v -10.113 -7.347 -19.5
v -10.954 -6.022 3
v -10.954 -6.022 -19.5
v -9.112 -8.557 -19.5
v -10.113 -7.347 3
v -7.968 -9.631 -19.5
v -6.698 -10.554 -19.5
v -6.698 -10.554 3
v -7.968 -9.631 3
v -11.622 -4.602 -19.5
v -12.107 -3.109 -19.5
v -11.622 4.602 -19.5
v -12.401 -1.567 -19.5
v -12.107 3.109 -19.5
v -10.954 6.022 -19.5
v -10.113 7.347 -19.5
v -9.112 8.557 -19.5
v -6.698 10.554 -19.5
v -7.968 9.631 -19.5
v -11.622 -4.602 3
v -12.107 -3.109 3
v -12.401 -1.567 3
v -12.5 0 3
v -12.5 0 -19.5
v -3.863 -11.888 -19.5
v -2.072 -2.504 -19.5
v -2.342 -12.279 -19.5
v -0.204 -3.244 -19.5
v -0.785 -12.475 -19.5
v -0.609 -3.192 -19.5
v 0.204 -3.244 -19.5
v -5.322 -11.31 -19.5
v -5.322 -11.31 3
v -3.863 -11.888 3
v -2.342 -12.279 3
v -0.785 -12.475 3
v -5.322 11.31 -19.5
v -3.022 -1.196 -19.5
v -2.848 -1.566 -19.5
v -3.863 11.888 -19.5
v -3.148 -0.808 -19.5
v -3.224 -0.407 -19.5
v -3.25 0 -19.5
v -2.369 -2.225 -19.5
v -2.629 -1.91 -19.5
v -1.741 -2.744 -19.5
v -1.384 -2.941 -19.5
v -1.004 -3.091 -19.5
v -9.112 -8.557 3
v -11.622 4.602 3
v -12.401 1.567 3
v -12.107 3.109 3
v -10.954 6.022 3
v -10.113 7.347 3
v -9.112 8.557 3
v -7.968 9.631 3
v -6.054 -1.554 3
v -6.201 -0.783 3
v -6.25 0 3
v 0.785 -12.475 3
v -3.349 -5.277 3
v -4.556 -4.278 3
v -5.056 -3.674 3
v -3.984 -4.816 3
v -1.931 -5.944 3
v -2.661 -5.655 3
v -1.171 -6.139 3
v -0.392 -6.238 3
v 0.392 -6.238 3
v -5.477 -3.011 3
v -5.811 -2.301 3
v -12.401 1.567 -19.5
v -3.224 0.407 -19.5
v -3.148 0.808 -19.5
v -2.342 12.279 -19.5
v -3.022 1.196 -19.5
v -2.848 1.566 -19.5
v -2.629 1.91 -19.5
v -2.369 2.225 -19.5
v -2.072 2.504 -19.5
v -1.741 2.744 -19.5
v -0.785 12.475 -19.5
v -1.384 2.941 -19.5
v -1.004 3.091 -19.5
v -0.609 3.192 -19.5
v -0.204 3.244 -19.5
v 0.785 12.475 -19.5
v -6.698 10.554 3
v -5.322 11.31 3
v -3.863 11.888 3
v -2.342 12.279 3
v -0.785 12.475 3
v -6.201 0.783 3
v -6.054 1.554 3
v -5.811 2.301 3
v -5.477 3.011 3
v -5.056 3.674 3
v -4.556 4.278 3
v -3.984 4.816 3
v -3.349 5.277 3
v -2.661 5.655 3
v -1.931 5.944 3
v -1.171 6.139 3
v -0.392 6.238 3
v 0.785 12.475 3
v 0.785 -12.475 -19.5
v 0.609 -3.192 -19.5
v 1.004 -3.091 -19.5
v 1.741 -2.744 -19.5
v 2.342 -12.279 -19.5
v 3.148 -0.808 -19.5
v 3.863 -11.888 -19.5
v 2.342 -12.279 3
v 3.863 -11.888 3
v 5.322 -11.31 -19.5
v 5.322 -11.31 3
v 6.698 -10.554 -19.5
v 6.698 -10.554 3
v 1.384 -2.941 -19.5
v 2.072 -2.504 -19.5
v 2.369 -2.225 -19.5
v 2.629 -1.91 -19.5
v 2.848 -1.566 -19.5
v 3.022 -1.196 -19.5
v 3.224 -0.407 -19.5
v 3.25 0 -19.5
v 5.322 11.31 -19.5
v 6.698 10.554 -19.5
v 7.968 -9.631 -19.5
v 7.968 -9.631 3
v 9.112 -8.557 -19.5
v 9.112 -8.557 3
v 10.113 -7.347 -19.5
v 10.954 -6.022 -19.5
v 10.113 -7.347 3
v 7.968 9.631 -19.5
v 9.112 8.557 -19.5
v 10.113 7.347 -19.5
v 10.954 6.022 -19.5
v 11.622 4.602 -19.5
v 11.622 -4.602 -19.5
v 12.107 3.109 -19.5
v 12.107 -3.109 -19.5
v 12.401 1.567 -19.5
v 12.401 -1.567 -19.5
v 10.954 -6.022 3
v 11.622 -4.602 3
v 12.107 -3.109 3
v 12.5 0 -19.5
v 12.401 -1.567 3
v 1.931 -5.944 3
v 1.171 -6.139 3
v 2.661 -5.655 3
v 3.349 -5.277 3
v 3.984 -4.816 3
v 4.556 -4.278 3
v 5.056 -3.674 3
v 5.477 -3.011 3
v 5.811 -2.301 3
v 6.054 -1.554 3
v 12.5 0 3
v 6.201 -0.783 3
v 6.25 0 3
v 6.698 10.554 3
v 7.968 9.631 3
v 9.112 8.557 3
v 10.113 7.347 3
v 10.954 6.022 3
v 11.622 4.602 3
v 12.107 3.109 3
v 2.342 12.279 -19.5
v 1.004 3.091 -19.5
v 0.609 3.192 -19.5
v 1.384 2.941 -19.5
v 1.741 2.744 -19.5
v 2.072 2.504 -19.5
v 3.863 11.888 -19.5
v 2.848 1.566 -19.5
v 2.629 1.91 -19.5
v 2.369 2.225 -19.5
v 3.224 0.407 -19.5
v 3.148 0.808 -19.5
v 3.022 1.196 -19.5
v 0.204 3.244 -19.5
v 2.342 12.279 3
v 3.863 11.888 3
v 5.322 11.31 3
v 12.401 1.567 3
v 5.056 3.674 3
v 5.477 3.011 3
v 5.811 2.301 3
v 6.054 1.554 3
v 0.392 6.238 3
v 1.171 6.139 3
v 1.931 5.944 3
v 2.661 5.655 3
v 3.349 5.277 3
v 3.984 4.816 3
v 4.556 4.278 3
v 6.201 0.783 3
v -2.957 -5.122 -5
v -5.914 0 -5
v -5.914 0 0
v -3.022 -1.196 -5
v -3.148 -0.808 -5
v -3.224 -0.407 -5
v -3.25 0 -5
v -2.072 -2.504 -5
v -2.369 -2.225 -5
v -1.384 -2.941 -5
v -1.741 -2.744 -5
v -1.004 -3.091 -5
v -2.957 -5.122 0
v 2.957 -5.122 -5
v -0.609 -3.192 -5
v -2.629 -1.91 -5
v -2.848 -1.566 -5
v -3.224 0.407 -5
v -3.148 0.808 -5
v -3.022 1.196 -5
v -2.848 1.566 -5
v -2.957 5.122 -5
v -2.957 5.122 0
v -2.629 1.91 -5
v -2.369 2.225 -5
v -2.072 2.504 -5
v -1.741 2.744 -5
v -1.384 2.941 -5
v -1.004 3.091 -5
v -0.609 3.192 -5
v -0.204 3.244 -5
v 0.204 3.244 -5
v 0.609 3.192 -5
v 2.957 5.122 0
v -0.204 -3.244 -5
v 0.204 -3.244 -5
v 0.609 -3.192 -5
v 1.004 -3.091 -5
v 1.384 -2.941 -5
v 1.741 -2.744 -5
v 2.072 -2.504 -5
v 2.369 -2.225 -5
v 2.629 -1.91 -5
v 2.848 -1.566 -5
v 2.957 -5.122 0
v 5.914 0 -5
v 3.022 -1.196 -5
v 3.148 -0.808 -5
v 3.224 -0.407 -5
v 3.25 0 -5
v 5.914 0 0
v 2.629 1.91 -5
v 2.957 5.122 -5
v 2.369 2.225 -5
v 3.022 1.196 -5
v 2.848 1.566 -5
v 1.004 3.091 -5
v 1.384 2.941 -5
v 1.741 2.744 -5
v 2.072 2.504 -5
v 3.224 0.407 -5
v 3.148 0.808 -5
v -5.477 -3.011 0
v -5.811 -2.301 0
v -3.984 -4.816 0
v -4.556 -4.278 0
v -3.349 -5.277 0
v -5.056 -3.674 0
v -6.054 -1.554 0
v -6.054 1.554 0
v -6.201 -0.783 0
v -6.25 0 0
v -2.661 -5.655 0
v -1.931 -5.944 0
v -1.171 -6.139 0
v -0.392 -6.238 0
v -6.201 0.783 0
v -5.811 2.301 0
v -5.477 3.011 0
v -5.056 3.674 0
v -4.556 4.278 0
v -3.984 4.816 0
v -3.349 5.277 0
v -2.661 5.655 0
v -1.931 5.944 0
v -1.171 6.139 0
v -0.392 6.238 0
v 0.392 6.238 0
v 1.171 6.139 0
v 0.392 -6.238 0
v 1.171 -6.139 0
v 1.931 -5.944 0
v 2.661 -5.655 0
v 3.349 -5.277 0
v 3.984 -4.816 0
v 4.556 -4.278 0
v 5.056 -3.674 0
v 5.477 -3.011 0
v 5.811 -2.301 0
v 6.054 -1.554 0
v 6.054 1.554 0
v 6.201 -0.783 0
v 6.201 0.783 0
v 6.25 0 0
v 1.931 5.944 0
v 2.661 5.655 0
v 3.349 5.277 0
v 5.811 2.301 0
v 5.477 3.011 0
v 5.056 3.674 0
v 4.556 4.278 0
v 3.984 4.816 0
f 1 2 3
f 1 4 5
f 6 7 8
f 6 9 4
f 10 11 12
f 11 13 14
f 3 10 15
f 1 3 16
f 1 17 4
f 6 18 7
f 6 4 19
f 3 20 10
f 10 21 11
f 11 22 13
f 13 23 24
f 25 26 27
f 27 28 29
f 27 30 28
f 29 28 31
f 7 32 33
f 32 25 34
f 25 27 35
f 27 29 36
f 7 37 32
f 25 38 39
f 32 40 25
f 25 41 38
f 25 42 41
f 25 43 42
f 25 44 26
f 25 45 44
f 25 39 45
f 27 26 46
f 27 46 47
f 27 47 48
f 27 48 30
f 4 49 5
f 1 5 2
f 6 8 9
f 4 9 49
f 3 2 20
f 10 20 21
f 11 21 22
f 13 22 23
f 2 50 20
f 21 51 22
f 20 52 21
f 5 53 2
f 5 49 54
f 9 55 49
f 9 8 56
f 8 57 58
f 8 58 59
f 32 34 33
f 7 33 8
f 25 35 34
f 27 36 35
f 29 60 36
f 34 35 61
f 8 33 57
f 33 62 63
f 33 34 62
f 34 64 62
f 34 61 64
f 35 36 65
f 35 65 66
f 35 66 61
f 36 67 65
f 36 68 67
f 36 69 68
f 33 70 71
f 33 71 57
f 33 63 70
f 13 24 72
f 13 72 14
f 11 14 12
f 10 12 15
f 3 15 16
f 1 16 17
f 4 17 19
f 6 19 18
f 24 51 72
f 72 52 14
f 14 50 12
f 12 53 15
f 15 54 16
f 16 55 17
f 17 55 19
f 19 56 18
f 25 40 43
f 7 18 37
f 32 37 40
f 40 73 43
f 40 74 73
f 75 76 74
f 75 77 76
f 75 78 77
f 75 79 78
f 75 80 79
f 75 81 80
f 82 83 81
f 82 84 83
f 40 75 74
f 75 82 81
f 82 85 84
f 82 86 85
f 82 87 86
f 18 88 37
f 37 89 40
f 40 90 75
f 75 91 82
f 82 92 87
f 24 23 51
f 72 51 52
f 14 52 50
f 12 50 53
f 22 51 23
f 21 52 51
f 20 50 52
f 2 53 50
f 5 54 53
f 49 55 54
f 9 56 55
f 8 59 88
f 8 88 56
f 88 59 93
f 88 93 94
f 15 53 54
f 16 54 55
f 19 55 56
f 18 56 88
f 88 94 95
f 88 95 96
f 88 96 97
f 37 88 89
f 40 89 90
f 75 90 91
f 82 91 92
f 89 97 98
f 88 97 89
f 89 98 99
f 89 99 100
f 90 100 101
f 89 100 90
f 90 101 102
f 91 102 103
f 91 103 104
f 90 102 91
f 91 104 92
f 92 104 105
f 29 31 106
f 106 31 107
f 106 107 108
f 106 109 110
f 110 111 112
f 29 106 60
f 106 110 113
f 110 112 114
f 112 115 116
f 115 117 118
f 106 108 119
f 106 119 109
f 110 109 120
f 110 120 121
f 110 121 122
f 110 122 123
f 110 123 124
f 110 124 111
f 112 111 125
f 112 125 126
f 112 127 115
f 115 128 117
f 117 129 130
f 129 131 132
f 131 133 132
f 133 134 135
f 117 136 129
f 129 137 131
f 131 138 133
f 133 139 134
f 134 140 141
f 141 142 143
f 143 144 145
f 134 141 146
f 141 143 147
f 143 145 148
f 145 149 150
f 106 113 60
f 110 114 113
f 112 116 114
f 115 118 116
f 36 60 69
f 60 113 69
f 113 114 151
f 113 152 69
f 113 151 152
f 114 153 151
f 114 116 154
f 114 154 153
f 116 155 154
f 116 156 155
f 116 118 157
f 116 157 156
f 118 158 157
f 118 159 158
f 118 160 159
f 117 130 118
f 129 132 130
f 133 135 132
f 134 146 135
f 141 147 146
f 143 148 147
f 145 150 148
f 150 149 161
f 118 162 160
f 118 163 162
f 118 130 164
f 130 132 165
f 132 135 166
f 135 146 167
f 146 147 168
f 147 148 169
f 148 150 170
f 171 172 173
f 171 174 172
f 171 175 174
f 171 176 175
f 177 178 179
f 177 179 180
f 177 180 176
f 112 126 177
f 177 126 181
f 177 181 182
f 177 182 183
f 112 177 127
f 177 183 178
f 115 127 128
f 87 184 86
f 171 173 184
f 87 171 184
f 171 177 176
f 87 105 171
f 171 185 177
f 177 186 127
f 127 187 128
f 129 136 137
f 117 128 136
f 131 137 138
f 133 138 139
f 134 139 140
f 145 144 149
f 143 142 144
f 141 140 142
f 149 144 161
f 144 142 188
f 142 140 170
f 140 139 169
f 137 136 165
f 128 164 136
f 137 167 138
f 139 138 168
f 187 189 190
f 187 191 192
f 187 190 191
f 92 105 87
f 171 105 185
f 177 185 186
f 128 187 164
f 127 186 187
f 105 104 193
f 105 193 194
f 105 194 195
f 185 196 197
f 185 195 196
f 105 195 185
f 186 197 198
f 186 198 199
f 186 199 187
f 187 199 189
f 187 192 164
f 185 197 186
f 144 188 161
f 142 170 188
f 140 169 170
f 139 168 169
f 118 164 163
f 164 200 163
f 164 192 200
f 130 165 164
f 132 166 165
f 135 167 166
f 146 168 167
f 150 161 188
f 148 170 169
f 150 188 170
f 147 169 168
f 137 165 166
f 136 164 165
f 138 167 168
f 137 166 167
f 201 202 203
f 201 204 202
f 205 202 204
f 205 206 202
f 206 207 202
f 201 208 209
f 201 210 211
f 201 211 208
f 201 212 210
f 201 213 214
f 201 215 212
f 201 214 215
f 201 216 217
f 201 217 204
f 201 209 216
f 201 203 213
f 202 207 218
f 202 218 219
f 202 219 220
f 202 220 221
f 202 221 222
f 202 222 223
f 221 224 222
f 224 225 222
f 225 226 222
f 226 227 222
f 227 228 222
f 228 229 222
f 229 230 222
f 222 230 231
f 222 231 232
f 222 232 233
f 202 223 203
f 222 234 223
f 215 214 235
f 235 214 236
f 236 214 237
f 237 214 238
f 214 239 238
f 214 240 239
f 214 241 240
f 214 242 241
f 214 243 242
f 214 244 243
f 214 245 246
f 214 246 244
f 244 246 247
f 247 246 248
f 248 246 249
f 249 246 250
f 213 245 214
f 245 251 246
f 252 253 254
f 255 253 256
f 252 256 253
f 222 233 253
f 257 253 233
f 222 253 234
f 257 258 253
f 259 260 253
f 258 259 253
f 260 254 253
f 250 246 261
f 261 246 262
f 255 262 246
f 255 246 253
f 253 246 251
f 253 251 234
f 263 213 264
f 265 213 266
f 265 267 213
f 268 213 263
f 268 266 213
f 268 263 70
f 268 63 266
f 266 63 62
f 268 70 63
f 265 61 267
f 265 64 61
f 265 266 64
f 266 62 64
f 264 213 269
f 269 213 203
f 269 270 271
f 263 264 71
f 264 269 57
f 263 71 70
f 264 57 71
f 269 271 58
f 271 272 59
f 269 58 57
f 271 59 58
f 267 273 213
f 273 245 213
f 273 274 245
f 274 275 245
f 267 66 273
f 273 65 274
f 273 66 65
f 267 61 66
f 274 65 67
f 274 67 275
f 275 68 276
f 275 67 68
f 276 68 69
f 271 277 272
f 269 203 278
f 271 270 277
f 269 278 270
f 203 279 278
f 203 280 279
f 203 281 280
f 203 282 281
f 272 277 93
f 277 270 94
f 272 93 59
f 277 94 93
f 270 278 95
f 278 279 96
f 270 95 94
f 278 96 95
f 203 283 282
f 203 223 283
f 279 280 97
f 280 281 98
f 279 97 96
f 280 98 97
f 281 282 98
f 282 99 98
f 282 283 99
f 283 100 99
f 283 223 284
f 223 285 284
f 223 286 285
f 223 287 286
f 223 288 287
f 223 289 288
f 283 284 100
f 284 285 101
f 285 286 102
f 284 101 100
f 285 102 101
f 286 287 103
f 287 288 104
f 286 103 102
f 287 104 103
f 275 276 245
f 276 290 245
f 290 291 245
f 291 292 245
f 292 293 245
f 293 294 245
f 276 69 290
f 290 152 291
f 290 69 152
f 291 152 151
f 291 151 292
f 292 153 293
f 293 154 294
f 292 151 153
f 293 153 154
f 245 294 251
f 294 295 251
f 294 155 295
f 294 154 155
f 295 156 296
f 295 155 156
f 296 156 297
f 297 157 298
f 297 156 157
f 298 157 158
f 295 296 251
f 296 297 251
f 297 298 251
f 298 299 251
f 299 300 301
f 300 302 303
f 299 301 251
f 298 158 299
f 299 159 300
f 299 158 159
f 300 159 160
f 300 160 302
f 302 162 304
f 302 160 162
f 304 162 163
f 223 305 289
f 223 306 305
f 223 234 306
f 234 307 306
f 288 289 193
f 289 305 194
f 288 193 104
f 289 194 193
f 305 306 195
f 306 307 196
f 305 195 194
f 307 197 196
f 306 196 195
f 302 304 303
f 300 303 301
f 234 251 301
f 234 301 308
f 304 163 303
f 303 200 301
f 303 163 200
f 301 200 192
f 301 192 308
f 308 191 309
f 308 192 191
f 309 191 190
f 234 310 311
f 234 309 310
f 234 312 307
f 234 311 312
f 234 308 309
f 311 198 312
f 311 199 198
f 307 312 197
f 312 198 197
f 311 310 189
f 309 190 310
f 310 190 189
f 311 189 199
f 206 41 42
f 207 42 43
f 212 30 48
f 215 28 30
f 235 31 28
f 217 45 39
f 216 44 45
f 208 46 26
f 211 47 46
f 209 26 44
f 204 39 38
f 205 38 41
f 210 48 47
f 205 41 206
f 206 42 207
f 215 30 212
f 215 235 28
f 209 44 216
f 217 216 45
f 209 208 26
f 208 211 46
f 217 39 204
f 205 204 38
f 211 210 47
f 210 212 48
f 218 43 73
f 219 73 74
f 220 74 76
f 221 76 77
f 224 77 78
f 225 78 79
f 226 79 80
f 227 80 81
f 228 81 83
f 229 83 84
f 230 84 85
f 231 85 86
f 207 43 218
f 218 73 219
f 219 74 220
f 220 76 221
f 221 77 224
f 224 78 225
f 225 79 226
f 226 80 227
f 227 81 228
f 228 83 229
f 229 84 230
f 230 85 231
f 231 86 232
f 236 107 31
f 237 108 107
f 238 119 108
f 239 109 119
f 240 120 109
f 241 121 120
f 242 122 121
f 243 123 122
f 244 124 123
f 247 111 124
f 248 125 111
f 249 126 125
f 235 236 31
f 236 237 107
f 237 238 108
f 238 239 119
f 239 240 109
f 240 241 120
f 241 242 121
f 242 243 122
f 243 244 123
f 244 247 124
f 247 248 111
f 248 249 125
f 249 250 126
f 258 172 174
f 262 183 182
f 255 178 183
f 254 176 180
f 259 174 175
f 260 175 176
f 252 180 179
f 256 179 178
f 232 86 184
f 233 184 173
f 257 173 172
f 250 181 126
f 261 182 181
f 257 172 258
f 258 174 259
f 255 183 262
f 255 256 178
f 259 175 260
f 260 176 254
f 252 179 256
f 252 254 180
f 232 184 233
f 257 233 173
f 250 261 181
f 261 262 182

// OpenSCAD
$fn = 50;


difference() {
	union() {
		translate(v = [0, 0, -19.5000000000]) {
			cylinder(h = 22.5000000000, r = 12.5000000000);
		}
		#translate(v = [0, 0, -21.0000000000]) {
			cylinder(h = 21, r = 2.8750000000);
		}
	}
	union() {
		translate(v = [0, 0, 0]) {
			rotate(a = [0, 0, 0]) {
				difference() {
					union() {
						translate(v = [0, 0, -5]) {
							linear_extrude(height = 5) {
								polygon(points = [[5.9142500000, 0.0000000000], [2.9571250000, 5.1218907443], [-2.9571250000, 5.1218907443], [-5.9142500000, 0.0000000000], [-2.9571250000, -5.1218907443], [2.9571250000, -5.1218907443]]);
							}
						}
					}
					union();
				}
			}
		}
		#cylinder(h = 3, r = 6.2500000000);
		#translate(v = [0, 0, -100.0000000000]) {
			cylinder(h = 200, r = 3.2500000000);
		}
	}
}
